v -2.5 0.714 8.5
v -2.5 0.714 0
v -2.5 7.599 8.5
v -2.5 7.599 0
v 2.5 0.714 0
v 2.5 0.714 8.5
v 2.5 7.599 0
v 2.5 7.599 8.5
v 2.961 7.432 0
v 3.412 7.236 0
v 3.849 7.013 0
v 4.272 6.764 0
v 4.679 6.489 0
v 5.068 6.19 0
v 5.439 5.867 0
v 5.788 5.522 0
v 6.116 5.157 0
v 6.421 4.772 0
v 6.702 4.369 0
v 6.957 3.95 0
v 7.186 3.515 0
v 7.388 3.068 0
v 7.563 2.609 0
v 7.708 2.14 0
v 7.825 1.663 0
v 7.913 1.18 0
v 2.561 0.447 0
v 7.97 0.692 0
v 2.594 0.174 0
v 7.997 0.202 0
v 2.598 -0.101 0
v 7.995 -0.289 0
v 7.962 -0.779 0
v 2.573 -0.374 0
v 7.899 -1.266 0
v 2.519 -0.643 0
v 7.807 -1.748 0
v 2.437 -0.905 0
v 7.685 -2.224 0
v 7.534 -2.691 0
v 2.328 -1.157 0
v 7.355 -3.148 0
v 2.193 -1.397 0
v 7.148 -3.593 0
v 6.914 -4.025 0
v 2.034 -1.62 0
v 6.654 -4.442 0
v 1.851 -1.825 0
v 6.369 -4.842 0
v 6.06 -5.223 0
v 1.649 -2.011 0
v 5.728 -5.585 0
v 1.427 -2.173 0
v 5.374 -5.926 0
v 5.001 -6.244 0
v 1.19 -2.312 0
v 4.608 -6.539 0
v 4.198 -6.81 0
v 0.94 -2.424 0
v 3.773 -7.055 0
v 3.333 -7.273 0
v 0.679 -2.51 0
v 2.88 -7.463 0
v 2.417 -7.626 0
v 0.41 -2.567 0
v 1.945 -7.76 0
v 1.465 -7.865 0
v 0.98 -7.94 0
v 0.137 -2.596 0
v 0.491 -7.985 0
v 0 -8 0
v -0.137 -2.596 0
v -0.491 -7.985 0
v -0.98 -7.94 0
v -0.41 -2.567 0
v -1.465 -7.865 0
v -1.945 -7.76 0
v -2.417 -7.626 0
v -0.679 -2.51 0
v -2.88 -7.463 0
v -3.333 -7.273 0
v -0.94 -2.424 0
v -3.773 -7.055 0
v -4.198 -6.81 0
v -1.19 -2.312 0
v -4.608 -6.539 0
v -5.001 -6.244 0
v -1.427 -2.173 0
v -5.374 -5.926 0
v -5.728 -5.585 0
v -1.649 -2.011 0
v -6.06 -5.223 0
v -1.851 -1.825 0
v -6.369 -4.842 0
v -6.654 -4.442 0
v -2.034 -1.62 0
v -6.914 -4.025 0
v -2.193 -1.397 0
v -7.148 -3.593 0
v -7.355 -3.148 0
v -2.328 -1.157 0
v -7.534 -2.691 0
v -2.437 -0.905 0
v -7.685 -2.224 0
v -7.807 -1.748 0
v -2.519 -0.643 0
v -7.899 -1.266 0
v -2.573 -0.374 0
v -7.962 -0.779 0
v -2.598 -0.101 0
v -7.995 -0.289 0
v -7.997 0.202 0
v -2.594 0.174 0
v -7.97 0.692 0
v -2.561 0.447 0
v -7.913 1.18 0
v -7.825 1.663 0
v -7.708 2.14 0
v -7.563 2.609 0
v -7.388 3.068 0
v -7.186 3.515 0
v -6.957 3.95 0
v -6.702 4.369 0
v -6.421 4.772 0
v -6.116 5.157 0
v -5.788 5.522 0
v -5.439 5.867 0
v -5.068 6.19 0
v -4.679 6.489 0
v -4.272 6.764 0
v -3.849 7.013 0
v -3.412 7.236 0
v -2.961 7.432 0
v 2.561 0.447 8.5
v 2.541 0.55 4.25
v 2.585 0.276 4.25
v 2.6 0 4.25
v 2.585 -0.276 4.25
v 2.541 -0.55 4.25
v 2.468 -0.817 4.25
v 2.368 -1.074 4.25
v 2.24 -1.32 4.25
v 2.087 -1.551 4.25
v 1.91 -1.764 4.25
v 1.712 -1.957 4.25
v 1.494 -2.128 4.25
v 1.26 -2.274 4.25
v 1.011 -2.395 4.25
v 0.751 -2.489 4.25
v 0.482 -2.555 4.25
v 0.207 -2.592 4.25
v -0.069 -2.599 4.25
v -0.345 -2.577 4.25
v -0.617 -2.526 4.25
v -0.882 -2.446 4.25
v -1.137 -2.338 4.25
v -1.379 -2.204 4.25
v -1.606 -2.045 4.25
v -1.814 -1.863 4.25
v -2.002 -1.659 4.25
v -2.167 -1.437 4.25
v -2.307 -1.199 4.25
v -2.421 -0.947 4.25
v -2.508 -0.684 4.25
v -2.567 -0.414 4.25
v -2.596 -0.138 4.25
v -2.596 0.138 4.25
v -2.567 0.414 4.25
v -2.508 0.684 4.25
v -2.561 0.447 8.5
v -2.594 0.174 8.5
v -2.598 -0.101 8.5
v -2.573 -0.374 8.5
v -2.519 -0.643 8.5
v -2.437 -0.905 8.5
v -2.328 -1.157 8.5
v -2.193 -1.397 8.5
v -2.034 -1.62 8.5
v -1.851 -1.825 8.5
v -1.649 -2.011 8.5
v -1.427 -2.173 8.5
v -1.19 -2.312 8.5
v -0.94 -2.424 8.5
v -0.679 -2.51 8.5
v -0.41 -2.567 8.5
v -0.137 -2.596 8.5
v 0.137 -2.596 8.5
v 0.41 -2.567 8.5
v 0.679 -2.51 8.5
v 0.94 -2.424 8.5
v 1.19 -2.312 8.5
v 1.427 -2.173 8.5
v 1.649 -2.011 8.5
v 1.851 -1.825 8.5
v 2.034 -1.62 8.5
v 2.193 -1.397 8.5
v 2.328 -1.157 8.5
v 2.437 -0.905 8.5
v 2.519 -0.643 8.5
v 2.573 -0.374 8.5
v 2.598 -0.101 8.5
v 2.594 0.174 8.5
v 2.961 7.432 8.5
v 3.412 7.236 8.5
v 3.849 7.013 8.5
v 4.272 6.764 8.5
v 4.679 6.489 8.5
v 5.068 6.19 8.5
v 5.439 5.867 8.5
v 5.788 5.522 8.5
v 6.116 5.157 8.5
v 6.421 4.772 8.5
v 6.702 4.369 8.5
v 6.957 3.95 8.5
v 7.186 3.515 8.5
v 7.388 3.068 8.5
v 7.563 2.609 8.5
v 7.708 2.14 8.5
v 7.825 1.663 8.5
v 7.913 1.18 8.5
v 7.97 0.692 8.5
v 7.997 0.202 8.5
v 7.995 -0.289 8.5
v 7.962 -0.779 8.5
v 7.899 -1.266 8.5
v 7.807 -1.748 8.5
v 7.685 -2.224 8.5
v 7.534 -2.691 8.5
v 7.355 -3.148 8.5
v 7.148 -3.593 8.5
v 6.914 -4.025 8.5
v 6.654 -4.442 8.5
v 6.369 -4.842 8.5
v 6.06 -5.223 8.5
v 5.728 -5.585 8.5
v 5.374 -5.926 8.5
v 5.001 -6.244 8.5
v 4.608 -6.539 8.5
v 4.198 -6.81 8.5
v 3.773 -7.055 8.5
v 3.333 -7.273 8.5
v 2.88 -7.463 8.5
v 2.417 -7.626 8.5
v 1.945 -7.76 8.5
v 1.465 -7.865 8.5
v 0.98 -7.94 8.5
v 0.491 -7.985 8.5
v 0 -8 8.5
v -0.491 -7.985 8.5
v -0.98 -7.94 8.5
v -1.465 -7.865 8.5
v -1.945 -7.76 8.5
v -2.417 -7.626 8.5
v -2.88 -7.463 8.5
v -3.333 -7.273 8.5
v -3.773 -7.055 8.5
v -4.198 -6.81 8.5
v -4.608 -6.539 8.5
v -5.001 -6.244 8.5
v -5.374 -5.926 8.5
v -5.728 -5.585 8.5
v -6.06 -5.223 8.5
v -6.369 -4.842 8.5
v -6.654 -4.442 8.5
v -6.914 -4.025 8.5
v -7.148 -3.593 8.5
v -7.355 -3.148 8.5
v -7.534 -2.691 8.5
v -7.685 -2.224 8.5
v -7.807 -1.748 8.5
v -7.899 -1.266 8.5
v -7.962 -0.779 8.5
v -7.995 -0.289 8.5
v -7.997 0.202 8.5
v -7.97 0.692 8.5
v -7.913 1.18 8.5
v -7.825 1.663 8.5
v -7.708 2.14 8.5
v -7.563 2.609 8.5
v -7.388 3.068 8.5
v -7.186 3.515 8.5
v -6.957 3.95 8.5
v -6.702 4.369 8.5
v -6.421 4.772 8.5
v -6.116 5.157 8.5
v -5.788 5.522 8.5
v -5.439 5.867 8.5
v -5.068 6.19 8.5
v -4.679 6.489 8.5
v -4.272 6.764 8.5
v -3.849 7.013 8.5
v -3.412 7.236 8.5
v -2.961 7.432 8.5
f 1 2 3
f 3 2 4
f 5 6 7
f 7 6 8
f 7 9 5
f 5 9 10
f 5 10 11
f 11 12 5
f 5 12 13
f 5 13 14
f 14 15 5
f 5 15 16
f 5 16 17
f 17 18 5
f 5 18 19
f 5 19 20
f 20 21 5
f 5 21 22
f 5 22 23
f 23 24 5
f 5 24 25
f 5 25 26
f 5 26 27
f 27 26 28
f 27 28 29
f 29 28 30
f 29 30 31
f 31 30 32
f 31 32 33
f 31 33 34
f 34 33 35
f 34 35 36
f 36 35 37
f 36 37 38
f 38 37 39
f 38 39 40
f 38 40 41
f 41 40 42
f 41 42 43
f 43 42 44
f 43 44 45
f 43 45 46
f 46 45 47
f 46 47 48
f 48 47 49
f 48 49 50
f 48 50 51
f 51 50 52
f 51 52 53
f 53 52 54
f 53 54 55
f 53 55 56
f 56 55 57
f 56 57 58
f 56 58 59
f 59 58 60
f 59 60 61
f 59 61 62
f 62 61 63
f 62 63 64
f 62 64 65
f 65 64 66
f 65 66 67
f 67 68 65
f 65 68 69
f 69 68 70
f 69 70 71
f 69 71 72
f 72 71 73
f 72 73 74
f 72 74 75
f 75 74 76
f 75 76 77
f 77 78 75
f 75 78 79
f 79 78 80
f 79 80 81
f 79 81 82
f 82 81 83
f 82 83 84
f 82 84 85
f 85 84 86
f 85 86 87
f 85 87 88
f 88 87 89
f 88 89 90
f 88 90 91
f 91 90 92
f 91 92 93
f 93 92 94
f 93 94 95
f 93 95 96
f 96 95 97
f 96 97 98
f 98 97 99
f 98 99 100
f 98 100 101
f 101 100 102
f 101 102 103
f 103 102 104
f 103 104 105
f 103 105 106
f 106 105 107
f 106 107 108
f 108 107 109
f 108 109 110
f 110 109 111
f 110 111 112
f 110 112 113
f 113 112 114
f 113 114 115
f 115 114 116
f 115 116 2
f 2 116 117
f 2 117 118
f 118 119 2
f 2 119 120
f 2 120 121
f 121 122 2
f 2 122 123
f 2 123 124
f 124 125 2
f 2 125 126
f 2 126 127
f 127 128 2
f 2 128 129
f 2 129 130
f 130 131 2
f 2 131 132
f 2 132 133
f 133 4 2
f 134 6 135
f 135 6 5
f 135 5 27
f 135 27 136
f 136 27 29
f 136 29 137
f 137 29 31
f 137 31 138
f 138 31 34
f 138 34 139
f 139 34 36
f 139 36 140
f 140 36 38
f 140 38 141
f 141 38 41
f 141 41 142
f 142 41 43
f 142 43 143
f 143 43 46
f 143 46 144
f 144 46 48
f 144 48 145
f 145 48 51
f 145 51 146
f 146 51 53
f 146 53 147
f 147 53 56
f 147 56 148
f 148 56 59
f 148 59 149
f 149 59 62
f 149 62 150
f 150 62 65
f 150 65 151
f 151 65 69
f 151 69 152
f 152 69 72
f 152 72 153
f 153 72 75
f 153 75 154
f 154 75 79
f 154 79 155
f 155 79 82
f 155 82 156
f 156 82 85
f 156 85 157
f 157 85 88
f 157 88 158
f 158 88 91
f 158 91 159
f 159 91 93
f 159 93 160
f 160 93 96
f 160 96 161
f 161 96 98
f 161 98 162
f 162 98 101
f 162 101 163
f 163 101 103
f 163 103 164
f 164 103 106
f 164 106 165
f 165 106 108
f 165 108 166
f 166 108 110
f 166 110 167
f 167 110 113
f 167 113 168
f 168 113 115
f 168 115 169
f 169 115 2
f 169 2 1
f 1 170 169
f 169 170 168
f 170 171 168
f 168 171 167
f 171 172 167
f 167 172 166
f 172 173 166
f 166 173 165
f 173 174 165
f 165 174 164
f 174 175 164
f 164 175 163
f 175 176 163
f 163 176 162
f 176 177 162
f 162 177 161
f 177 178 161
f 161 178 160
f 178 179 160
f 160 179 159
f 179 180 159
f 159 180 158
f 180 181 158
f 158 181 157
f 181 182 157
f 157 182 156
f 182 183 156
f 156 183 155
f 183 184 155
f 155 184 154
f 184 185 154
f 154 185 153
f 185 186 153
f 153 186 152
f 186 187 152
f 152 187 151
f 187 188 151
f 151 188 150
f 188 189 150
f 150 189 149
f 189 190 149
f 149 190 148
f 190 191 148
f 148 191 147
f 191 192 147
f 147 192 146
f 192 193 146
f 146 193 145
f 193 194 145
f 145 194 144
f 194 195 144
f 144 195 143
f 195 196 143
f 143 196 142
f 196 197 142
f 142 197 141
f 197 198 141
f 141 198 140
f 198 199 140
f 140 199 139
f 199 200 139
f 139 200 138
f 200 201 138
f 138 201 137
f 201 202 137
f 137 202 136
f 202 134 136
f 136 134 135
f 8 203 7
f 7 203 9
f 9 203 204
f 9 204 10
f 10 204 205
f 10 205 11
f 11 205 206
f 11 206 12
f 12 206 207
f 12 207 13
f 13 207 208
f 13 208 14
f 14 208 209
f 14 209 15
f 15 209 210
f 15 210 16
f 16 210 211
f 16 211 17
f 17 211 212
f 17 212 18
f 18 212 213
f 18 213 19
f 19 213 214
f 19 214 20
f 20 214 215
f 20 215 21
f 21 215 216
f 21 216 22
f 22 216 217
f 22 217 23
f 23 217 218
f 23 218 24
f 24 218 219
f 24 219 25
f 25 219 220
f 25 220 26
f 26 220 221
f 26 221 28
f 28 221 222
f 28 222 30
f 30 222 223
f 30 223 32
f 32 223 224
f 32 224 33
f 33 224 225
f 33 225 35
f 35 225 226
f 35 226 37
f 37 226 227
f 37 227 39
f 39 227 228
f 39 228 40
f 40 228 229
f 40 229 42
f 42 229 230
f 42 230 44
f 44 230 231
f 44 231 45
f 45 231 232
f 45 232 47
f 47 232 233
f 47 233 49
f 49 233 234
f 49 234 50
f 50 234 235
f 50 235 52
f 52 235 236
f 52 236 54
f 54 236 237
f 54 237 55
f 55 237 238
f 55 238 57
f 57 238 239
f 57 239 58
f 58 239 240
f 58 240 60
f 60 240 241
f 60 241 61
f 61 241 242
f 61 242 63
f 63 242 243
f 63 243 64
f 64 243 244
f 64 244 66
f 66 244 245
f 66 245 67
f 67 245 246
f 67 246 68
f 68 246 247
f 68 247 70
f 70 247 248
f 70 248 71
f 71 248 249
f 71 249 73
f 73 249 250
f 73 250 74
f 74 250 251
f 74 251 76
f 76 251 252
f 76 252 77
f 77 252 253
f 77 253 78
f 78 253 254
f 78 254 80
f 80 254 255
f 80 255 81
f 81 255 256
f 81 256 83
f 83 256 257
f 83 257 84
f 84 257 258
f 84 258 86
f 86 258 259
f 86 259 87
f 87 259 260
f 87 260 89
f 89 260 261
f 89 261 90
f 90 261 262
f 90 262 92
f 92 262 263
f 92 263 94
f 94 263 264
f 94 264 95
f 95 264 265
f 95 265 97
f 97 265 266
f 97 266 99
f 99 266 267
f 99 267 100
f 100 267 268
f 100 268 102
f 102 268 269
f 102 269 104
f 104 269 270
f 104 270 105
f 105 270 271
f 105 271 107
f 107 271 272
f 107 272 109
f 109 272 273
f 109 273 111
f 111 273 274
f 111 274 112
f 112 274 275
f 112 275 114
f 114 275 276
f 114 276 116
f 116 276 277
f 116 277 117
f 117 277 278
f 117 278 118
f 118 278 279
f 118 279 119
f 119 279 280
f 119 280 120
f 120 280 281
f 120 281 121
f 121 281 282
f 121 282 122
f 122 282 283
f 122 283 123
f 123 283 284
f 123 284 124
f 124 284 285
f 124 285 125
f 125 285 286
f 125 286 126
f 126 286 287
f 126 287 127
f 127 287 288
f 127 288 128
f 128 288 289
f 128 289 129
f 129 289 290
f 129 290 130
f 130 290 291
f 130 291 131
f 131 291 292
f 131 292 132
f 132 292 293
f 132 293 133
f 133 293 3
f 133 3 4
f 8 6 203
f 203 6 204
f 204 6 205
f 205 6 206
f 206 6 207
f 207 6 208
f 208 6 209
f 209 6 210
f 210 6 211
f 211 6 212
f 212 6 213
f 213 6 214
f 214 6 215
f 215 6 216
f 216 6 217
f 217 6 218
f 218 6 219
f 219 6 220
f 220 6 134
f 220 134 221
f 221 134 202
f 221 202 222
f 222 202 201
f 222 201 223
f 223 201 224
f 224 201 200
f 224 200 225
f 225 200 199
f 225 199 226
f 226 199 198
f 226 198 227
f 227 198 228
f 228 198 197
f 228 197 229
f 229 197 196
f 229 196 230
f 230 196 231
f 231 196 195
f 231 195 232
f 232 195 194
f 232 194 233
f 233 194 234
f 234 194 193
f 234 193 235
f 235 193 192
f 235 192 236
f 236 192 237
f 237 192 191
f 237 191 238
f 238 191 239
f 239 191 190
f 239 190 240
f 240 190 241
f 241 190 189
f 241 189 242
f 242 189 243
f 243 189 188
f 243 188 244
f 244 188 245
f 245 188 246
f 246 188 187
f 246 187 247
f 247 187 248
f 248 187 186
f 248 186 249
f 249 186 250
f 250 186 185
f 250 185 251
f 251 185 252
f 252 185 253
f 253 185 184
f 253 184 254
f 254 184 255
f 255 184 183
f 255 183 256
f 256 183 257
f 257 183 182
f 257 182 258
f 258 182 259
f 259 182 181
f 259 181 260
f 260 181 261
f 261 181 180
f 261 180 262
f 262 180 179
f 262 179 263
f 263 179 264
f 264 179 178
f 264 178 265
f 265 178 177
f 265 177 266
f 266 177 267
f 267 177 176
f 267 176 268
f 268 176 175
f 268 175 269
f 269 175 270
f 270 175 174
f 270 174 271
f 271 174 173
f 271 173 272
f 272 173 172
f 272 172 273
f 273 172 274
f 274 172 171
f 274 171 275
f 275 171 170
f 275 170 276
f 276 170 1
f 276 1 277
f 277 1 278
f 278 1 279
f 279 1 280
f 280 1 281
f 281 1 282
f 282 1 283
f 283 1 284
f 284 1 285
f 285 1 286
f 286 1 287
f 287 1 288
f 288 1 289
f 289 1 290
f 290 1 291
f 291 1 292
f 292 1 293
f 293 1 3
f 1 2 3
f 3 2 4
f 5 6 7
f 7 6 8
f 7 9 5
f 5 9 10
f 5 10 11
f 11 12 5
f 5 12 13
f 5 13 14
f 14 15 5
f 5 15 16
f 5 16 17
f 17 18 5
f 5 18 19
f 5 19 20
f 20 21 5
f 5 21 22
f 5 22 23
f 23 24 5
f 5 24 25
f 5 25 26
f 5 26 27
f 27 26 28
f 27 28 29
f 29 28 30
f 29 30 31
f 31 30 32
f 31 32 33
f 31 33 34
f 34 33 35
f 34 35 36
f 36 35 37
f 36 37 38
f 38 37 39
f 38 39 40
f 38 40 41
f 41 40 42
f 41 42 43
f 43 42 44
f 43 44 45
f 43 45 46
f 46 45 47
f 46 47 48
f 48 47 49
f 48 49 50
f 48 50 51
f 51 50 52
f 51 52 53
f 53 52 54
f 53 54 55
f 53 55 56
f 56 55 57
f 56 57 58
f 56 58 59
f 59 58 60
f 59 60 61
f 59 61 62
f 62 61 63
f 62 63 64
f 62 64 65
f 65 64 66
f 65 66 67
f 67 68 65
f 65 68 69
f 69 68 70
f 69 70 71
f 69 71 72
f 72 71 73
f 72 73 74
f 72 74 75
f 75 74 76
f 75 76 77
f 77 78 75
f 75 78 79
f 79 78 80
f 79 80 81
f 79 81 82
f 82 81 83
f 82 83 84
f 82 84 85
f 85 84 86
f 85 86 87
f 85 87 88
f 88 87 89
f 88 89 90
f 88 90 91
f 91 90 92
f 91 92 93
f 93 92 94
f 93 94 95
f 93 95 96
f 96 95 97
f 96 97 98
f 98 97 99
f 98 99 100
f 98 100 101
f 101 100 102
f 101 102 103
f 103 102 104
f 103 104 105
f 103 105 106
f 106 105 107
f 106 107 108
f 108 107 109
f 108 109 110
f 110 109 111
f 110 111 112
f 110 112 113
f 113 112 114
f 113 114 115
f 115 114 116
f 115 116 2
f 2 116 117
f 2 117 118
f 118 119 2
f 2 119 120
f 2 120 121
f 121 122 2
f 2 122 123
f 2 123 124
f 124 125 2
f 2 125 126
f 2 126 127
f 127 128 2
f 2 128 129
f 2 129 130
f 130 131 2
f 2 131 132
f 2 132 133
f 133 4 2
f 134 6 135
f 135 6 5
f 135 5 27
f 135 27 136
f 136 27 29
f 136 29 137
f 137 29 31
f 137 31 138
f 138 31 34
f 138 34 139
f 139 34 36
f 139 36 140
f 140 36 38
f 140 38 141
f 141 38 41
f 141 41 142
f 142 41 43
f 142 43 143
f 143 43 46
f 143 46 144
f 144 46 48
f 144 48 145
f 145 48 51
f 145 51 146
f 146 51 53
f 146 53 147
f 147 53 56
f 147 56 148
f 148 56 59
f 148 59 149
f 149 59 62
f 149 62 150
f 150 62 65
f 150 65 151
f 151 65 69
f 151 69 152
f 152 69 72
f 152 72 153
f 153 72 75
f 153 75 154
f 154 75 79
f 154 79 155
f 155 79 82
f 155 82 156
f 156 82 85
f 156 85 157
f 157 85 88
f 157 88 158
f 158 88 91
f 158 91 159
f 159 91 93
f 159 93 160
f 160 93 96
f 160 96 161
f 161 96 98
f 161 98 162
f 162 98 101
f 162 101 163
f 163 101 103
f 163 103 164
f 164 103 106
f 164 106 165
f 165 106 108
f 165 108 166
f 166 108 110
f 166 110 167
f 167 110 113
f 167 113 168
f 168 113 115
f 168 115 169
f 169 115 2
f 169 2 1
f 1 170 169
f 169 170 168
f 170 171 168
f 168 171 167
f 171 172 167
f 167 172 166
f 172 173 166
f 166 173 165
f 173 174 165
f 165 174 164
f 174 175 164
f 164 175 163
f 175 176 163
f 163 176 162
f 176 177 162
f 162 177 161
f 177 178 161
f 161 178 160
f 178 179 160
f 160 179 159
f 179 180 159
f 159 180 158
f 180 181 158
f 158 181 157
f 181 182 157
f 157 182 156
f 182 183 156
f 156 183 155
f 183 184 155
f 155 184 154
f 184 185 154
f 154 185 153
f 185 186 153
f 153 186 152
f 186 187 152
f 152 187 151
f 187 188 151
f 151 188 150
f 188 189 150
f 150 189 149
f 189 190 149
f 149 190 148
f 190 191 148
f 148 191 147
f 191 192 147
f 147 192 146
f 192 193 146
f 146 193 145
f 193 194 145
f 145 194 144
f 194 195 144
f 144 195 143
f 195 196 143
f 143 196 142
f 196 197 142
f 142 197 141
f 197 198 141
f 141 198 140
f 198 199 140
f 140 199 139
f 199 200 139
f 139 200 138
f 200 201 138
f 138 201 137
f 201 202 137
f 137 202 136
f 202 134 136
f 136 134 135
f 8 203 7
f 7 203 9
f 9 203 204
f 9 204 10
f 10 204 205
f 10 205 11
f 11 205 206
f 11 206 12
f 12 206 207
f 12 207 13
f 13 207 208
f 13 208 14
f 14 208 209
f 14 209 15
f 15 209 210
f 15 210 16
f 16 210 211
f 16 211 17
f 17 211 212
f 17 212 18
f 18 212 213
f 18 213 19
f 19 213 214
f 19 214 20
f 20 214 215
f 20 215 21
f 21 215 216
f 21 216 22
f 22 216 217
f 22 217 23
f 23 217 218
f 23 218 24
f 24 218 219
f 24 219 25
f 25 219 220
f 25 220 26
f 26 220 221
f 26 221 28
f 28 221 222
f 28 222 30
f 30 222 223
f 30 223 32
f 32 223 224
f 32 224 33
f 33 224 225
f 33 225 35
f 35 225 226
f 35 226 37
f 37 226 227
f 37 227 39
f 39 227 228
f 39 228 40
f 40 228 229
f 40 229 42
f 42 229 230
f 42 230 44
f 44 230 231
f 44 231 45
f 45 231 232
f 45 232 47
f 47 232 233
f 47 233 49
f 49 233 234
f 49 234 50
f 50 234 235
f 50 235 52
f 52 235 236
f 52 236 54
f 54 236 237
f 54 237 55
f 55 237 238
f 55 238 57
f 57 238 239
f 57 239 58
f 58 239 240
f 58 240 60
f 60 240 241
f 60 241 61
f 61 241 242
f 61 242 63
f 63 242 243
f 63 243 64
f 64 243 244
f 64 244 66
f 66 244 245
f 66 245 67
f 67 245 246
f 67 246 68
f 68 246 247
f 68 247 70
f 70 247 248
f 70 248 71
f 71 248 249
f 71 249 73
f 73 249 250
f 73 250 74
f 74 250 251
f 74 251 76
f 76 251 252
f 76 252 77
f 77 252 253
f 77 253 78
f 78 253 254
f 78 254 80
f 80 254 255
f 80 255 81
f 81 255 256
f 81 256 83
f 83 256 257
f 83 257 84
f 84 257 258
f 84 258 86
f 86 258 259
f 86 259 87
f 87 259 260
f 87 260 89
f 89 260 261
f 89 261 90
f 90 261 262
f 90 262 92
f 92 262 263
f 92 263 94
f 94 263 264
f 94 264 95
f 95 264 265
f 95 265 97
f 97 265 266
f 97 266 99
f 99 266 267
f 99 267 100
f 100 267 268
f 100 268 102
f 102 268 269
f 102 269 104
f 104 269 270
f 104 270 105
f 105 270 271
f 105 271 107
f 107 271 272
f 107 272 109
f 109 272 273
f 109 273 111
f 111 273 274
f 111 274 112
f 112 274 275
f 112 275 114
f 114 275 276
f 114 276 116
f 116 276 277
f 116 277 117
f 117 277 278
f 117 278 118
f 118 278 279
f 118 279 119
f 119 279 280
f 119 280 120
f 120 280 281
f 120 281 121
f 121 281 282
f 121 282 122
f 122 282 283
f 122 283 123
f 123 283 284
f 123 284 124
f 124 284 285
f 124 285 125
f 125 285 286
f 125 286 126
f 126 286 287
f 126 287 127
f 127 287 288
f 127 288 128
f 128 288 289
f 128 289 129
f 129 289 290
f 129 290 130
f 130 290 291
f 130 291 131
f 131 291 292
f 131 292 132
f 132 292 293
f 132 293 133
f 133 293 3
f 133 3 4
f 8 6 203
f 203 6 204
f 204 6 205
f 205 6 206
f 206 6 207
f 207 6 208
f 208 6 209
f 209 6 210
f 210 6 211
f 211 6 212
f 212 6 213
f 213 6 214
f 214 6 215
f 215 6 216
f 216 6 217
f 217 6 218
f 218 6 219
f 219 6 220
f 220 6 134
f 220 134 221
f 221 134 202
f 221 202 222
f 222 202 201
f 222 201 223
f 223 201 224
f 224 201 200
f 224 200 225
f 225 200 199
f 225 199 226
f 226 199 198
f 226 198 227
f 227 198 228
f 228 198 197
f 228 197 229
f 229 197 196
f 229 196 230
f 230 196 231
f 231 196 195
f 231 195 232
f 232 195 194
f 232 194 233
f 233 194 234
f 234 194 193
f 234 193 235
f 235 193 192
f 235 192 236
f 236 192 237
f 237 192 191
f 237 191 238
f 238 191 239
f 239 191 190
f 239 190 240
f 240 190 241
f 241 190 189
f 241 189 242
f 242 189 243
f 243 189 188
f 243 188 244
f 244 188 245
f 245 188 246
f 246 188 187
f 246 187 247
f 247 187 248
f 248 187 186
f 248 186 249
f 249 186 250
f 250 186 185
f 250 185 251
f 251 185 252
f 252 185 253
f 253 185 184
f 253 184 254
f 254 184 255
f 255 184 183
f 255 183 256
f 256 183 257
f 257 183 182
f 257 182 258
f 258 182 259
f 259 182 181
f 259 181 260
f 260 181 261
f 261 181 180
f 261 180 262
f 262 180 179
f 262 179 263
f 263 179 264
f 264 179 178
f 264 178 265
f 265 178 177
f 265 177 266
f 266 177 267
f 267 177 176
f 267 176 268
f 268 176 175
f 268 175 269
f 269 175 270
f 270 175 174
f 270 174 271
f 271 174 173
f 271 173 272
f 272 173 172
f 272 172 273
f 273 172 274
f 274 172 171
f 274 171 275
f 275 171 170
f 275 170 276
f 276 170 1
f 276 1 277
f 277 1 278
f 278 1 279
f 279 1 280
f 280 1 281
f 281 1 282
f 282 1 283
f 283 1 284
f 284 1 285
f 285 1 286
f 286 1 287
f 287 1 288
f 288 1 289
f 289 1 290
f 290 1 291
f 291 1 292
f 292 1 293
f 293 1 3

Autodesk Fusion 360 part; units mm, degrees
sketch "Sketch1" plane through (0, 0, 0) normal (0, 0, 1) x (1, 0, 0)
  circle A0 centre (0, 0) radius 8
  dimension "d7" = 16
extrude "Extrude2" add sketch "Sketch1" along normal blind 8.5 makes body 1
extrude "Extrude1" add sketch "Sketch1" along normal blind 8.5 separate body makes body 2
sketch "Sketch2" plane through (0, 0, 8.5) normal (0, 0, 1) x (-1, 0, 0)
  circle A0 centre (0, 0) radius 8
  circle A1 centre (0, 0) radius 2.6
  dimension "d12" = 5.2
extrude "Extrude3" cut sketch "Sketch2" against normal blind 108.5 contours A1 bodies 1 2
sketch "Sketch3" plane through (0, 0, 0) normal (0, 1, 0) x (1, 0, 0)
  line L0 (-2.5, 0) -> (2.5, 0)
  line L1 (2.5, 0) -> (2.5, -8.5)
  line L2 (2.5, -8.5) -> (-2.5, -8.5)
  line L3 (-2.5, -8.5) -> (-2.5, 0)
  dimension "d15" = 5
  dimension "d16" = 8.5
extrude "Extrude4" cut sketch "Sketch3" along normal blind 102.6 bodies 1 2
equation "outer_radius = 8 mm"
equation "shaft_hole_radius = 2.6 mm"
equation "screw_hole_length = length"
equation "length = 8.5 mm"
equation "extra = 100 mm"
equation "screw_hole_width = 5 mm"
equation "d7 = outer_radius * 2"
equation "d8 = length"
equation "d10 = length"
equation "d12 = shaft_hole_radius * 2"
equation "d13 = -( length + extra )"
equation "d15 = screw_hole_width"
equation "d16 = screw_hole_length"
equation "d17 = shaft_hole_radius + extra"
